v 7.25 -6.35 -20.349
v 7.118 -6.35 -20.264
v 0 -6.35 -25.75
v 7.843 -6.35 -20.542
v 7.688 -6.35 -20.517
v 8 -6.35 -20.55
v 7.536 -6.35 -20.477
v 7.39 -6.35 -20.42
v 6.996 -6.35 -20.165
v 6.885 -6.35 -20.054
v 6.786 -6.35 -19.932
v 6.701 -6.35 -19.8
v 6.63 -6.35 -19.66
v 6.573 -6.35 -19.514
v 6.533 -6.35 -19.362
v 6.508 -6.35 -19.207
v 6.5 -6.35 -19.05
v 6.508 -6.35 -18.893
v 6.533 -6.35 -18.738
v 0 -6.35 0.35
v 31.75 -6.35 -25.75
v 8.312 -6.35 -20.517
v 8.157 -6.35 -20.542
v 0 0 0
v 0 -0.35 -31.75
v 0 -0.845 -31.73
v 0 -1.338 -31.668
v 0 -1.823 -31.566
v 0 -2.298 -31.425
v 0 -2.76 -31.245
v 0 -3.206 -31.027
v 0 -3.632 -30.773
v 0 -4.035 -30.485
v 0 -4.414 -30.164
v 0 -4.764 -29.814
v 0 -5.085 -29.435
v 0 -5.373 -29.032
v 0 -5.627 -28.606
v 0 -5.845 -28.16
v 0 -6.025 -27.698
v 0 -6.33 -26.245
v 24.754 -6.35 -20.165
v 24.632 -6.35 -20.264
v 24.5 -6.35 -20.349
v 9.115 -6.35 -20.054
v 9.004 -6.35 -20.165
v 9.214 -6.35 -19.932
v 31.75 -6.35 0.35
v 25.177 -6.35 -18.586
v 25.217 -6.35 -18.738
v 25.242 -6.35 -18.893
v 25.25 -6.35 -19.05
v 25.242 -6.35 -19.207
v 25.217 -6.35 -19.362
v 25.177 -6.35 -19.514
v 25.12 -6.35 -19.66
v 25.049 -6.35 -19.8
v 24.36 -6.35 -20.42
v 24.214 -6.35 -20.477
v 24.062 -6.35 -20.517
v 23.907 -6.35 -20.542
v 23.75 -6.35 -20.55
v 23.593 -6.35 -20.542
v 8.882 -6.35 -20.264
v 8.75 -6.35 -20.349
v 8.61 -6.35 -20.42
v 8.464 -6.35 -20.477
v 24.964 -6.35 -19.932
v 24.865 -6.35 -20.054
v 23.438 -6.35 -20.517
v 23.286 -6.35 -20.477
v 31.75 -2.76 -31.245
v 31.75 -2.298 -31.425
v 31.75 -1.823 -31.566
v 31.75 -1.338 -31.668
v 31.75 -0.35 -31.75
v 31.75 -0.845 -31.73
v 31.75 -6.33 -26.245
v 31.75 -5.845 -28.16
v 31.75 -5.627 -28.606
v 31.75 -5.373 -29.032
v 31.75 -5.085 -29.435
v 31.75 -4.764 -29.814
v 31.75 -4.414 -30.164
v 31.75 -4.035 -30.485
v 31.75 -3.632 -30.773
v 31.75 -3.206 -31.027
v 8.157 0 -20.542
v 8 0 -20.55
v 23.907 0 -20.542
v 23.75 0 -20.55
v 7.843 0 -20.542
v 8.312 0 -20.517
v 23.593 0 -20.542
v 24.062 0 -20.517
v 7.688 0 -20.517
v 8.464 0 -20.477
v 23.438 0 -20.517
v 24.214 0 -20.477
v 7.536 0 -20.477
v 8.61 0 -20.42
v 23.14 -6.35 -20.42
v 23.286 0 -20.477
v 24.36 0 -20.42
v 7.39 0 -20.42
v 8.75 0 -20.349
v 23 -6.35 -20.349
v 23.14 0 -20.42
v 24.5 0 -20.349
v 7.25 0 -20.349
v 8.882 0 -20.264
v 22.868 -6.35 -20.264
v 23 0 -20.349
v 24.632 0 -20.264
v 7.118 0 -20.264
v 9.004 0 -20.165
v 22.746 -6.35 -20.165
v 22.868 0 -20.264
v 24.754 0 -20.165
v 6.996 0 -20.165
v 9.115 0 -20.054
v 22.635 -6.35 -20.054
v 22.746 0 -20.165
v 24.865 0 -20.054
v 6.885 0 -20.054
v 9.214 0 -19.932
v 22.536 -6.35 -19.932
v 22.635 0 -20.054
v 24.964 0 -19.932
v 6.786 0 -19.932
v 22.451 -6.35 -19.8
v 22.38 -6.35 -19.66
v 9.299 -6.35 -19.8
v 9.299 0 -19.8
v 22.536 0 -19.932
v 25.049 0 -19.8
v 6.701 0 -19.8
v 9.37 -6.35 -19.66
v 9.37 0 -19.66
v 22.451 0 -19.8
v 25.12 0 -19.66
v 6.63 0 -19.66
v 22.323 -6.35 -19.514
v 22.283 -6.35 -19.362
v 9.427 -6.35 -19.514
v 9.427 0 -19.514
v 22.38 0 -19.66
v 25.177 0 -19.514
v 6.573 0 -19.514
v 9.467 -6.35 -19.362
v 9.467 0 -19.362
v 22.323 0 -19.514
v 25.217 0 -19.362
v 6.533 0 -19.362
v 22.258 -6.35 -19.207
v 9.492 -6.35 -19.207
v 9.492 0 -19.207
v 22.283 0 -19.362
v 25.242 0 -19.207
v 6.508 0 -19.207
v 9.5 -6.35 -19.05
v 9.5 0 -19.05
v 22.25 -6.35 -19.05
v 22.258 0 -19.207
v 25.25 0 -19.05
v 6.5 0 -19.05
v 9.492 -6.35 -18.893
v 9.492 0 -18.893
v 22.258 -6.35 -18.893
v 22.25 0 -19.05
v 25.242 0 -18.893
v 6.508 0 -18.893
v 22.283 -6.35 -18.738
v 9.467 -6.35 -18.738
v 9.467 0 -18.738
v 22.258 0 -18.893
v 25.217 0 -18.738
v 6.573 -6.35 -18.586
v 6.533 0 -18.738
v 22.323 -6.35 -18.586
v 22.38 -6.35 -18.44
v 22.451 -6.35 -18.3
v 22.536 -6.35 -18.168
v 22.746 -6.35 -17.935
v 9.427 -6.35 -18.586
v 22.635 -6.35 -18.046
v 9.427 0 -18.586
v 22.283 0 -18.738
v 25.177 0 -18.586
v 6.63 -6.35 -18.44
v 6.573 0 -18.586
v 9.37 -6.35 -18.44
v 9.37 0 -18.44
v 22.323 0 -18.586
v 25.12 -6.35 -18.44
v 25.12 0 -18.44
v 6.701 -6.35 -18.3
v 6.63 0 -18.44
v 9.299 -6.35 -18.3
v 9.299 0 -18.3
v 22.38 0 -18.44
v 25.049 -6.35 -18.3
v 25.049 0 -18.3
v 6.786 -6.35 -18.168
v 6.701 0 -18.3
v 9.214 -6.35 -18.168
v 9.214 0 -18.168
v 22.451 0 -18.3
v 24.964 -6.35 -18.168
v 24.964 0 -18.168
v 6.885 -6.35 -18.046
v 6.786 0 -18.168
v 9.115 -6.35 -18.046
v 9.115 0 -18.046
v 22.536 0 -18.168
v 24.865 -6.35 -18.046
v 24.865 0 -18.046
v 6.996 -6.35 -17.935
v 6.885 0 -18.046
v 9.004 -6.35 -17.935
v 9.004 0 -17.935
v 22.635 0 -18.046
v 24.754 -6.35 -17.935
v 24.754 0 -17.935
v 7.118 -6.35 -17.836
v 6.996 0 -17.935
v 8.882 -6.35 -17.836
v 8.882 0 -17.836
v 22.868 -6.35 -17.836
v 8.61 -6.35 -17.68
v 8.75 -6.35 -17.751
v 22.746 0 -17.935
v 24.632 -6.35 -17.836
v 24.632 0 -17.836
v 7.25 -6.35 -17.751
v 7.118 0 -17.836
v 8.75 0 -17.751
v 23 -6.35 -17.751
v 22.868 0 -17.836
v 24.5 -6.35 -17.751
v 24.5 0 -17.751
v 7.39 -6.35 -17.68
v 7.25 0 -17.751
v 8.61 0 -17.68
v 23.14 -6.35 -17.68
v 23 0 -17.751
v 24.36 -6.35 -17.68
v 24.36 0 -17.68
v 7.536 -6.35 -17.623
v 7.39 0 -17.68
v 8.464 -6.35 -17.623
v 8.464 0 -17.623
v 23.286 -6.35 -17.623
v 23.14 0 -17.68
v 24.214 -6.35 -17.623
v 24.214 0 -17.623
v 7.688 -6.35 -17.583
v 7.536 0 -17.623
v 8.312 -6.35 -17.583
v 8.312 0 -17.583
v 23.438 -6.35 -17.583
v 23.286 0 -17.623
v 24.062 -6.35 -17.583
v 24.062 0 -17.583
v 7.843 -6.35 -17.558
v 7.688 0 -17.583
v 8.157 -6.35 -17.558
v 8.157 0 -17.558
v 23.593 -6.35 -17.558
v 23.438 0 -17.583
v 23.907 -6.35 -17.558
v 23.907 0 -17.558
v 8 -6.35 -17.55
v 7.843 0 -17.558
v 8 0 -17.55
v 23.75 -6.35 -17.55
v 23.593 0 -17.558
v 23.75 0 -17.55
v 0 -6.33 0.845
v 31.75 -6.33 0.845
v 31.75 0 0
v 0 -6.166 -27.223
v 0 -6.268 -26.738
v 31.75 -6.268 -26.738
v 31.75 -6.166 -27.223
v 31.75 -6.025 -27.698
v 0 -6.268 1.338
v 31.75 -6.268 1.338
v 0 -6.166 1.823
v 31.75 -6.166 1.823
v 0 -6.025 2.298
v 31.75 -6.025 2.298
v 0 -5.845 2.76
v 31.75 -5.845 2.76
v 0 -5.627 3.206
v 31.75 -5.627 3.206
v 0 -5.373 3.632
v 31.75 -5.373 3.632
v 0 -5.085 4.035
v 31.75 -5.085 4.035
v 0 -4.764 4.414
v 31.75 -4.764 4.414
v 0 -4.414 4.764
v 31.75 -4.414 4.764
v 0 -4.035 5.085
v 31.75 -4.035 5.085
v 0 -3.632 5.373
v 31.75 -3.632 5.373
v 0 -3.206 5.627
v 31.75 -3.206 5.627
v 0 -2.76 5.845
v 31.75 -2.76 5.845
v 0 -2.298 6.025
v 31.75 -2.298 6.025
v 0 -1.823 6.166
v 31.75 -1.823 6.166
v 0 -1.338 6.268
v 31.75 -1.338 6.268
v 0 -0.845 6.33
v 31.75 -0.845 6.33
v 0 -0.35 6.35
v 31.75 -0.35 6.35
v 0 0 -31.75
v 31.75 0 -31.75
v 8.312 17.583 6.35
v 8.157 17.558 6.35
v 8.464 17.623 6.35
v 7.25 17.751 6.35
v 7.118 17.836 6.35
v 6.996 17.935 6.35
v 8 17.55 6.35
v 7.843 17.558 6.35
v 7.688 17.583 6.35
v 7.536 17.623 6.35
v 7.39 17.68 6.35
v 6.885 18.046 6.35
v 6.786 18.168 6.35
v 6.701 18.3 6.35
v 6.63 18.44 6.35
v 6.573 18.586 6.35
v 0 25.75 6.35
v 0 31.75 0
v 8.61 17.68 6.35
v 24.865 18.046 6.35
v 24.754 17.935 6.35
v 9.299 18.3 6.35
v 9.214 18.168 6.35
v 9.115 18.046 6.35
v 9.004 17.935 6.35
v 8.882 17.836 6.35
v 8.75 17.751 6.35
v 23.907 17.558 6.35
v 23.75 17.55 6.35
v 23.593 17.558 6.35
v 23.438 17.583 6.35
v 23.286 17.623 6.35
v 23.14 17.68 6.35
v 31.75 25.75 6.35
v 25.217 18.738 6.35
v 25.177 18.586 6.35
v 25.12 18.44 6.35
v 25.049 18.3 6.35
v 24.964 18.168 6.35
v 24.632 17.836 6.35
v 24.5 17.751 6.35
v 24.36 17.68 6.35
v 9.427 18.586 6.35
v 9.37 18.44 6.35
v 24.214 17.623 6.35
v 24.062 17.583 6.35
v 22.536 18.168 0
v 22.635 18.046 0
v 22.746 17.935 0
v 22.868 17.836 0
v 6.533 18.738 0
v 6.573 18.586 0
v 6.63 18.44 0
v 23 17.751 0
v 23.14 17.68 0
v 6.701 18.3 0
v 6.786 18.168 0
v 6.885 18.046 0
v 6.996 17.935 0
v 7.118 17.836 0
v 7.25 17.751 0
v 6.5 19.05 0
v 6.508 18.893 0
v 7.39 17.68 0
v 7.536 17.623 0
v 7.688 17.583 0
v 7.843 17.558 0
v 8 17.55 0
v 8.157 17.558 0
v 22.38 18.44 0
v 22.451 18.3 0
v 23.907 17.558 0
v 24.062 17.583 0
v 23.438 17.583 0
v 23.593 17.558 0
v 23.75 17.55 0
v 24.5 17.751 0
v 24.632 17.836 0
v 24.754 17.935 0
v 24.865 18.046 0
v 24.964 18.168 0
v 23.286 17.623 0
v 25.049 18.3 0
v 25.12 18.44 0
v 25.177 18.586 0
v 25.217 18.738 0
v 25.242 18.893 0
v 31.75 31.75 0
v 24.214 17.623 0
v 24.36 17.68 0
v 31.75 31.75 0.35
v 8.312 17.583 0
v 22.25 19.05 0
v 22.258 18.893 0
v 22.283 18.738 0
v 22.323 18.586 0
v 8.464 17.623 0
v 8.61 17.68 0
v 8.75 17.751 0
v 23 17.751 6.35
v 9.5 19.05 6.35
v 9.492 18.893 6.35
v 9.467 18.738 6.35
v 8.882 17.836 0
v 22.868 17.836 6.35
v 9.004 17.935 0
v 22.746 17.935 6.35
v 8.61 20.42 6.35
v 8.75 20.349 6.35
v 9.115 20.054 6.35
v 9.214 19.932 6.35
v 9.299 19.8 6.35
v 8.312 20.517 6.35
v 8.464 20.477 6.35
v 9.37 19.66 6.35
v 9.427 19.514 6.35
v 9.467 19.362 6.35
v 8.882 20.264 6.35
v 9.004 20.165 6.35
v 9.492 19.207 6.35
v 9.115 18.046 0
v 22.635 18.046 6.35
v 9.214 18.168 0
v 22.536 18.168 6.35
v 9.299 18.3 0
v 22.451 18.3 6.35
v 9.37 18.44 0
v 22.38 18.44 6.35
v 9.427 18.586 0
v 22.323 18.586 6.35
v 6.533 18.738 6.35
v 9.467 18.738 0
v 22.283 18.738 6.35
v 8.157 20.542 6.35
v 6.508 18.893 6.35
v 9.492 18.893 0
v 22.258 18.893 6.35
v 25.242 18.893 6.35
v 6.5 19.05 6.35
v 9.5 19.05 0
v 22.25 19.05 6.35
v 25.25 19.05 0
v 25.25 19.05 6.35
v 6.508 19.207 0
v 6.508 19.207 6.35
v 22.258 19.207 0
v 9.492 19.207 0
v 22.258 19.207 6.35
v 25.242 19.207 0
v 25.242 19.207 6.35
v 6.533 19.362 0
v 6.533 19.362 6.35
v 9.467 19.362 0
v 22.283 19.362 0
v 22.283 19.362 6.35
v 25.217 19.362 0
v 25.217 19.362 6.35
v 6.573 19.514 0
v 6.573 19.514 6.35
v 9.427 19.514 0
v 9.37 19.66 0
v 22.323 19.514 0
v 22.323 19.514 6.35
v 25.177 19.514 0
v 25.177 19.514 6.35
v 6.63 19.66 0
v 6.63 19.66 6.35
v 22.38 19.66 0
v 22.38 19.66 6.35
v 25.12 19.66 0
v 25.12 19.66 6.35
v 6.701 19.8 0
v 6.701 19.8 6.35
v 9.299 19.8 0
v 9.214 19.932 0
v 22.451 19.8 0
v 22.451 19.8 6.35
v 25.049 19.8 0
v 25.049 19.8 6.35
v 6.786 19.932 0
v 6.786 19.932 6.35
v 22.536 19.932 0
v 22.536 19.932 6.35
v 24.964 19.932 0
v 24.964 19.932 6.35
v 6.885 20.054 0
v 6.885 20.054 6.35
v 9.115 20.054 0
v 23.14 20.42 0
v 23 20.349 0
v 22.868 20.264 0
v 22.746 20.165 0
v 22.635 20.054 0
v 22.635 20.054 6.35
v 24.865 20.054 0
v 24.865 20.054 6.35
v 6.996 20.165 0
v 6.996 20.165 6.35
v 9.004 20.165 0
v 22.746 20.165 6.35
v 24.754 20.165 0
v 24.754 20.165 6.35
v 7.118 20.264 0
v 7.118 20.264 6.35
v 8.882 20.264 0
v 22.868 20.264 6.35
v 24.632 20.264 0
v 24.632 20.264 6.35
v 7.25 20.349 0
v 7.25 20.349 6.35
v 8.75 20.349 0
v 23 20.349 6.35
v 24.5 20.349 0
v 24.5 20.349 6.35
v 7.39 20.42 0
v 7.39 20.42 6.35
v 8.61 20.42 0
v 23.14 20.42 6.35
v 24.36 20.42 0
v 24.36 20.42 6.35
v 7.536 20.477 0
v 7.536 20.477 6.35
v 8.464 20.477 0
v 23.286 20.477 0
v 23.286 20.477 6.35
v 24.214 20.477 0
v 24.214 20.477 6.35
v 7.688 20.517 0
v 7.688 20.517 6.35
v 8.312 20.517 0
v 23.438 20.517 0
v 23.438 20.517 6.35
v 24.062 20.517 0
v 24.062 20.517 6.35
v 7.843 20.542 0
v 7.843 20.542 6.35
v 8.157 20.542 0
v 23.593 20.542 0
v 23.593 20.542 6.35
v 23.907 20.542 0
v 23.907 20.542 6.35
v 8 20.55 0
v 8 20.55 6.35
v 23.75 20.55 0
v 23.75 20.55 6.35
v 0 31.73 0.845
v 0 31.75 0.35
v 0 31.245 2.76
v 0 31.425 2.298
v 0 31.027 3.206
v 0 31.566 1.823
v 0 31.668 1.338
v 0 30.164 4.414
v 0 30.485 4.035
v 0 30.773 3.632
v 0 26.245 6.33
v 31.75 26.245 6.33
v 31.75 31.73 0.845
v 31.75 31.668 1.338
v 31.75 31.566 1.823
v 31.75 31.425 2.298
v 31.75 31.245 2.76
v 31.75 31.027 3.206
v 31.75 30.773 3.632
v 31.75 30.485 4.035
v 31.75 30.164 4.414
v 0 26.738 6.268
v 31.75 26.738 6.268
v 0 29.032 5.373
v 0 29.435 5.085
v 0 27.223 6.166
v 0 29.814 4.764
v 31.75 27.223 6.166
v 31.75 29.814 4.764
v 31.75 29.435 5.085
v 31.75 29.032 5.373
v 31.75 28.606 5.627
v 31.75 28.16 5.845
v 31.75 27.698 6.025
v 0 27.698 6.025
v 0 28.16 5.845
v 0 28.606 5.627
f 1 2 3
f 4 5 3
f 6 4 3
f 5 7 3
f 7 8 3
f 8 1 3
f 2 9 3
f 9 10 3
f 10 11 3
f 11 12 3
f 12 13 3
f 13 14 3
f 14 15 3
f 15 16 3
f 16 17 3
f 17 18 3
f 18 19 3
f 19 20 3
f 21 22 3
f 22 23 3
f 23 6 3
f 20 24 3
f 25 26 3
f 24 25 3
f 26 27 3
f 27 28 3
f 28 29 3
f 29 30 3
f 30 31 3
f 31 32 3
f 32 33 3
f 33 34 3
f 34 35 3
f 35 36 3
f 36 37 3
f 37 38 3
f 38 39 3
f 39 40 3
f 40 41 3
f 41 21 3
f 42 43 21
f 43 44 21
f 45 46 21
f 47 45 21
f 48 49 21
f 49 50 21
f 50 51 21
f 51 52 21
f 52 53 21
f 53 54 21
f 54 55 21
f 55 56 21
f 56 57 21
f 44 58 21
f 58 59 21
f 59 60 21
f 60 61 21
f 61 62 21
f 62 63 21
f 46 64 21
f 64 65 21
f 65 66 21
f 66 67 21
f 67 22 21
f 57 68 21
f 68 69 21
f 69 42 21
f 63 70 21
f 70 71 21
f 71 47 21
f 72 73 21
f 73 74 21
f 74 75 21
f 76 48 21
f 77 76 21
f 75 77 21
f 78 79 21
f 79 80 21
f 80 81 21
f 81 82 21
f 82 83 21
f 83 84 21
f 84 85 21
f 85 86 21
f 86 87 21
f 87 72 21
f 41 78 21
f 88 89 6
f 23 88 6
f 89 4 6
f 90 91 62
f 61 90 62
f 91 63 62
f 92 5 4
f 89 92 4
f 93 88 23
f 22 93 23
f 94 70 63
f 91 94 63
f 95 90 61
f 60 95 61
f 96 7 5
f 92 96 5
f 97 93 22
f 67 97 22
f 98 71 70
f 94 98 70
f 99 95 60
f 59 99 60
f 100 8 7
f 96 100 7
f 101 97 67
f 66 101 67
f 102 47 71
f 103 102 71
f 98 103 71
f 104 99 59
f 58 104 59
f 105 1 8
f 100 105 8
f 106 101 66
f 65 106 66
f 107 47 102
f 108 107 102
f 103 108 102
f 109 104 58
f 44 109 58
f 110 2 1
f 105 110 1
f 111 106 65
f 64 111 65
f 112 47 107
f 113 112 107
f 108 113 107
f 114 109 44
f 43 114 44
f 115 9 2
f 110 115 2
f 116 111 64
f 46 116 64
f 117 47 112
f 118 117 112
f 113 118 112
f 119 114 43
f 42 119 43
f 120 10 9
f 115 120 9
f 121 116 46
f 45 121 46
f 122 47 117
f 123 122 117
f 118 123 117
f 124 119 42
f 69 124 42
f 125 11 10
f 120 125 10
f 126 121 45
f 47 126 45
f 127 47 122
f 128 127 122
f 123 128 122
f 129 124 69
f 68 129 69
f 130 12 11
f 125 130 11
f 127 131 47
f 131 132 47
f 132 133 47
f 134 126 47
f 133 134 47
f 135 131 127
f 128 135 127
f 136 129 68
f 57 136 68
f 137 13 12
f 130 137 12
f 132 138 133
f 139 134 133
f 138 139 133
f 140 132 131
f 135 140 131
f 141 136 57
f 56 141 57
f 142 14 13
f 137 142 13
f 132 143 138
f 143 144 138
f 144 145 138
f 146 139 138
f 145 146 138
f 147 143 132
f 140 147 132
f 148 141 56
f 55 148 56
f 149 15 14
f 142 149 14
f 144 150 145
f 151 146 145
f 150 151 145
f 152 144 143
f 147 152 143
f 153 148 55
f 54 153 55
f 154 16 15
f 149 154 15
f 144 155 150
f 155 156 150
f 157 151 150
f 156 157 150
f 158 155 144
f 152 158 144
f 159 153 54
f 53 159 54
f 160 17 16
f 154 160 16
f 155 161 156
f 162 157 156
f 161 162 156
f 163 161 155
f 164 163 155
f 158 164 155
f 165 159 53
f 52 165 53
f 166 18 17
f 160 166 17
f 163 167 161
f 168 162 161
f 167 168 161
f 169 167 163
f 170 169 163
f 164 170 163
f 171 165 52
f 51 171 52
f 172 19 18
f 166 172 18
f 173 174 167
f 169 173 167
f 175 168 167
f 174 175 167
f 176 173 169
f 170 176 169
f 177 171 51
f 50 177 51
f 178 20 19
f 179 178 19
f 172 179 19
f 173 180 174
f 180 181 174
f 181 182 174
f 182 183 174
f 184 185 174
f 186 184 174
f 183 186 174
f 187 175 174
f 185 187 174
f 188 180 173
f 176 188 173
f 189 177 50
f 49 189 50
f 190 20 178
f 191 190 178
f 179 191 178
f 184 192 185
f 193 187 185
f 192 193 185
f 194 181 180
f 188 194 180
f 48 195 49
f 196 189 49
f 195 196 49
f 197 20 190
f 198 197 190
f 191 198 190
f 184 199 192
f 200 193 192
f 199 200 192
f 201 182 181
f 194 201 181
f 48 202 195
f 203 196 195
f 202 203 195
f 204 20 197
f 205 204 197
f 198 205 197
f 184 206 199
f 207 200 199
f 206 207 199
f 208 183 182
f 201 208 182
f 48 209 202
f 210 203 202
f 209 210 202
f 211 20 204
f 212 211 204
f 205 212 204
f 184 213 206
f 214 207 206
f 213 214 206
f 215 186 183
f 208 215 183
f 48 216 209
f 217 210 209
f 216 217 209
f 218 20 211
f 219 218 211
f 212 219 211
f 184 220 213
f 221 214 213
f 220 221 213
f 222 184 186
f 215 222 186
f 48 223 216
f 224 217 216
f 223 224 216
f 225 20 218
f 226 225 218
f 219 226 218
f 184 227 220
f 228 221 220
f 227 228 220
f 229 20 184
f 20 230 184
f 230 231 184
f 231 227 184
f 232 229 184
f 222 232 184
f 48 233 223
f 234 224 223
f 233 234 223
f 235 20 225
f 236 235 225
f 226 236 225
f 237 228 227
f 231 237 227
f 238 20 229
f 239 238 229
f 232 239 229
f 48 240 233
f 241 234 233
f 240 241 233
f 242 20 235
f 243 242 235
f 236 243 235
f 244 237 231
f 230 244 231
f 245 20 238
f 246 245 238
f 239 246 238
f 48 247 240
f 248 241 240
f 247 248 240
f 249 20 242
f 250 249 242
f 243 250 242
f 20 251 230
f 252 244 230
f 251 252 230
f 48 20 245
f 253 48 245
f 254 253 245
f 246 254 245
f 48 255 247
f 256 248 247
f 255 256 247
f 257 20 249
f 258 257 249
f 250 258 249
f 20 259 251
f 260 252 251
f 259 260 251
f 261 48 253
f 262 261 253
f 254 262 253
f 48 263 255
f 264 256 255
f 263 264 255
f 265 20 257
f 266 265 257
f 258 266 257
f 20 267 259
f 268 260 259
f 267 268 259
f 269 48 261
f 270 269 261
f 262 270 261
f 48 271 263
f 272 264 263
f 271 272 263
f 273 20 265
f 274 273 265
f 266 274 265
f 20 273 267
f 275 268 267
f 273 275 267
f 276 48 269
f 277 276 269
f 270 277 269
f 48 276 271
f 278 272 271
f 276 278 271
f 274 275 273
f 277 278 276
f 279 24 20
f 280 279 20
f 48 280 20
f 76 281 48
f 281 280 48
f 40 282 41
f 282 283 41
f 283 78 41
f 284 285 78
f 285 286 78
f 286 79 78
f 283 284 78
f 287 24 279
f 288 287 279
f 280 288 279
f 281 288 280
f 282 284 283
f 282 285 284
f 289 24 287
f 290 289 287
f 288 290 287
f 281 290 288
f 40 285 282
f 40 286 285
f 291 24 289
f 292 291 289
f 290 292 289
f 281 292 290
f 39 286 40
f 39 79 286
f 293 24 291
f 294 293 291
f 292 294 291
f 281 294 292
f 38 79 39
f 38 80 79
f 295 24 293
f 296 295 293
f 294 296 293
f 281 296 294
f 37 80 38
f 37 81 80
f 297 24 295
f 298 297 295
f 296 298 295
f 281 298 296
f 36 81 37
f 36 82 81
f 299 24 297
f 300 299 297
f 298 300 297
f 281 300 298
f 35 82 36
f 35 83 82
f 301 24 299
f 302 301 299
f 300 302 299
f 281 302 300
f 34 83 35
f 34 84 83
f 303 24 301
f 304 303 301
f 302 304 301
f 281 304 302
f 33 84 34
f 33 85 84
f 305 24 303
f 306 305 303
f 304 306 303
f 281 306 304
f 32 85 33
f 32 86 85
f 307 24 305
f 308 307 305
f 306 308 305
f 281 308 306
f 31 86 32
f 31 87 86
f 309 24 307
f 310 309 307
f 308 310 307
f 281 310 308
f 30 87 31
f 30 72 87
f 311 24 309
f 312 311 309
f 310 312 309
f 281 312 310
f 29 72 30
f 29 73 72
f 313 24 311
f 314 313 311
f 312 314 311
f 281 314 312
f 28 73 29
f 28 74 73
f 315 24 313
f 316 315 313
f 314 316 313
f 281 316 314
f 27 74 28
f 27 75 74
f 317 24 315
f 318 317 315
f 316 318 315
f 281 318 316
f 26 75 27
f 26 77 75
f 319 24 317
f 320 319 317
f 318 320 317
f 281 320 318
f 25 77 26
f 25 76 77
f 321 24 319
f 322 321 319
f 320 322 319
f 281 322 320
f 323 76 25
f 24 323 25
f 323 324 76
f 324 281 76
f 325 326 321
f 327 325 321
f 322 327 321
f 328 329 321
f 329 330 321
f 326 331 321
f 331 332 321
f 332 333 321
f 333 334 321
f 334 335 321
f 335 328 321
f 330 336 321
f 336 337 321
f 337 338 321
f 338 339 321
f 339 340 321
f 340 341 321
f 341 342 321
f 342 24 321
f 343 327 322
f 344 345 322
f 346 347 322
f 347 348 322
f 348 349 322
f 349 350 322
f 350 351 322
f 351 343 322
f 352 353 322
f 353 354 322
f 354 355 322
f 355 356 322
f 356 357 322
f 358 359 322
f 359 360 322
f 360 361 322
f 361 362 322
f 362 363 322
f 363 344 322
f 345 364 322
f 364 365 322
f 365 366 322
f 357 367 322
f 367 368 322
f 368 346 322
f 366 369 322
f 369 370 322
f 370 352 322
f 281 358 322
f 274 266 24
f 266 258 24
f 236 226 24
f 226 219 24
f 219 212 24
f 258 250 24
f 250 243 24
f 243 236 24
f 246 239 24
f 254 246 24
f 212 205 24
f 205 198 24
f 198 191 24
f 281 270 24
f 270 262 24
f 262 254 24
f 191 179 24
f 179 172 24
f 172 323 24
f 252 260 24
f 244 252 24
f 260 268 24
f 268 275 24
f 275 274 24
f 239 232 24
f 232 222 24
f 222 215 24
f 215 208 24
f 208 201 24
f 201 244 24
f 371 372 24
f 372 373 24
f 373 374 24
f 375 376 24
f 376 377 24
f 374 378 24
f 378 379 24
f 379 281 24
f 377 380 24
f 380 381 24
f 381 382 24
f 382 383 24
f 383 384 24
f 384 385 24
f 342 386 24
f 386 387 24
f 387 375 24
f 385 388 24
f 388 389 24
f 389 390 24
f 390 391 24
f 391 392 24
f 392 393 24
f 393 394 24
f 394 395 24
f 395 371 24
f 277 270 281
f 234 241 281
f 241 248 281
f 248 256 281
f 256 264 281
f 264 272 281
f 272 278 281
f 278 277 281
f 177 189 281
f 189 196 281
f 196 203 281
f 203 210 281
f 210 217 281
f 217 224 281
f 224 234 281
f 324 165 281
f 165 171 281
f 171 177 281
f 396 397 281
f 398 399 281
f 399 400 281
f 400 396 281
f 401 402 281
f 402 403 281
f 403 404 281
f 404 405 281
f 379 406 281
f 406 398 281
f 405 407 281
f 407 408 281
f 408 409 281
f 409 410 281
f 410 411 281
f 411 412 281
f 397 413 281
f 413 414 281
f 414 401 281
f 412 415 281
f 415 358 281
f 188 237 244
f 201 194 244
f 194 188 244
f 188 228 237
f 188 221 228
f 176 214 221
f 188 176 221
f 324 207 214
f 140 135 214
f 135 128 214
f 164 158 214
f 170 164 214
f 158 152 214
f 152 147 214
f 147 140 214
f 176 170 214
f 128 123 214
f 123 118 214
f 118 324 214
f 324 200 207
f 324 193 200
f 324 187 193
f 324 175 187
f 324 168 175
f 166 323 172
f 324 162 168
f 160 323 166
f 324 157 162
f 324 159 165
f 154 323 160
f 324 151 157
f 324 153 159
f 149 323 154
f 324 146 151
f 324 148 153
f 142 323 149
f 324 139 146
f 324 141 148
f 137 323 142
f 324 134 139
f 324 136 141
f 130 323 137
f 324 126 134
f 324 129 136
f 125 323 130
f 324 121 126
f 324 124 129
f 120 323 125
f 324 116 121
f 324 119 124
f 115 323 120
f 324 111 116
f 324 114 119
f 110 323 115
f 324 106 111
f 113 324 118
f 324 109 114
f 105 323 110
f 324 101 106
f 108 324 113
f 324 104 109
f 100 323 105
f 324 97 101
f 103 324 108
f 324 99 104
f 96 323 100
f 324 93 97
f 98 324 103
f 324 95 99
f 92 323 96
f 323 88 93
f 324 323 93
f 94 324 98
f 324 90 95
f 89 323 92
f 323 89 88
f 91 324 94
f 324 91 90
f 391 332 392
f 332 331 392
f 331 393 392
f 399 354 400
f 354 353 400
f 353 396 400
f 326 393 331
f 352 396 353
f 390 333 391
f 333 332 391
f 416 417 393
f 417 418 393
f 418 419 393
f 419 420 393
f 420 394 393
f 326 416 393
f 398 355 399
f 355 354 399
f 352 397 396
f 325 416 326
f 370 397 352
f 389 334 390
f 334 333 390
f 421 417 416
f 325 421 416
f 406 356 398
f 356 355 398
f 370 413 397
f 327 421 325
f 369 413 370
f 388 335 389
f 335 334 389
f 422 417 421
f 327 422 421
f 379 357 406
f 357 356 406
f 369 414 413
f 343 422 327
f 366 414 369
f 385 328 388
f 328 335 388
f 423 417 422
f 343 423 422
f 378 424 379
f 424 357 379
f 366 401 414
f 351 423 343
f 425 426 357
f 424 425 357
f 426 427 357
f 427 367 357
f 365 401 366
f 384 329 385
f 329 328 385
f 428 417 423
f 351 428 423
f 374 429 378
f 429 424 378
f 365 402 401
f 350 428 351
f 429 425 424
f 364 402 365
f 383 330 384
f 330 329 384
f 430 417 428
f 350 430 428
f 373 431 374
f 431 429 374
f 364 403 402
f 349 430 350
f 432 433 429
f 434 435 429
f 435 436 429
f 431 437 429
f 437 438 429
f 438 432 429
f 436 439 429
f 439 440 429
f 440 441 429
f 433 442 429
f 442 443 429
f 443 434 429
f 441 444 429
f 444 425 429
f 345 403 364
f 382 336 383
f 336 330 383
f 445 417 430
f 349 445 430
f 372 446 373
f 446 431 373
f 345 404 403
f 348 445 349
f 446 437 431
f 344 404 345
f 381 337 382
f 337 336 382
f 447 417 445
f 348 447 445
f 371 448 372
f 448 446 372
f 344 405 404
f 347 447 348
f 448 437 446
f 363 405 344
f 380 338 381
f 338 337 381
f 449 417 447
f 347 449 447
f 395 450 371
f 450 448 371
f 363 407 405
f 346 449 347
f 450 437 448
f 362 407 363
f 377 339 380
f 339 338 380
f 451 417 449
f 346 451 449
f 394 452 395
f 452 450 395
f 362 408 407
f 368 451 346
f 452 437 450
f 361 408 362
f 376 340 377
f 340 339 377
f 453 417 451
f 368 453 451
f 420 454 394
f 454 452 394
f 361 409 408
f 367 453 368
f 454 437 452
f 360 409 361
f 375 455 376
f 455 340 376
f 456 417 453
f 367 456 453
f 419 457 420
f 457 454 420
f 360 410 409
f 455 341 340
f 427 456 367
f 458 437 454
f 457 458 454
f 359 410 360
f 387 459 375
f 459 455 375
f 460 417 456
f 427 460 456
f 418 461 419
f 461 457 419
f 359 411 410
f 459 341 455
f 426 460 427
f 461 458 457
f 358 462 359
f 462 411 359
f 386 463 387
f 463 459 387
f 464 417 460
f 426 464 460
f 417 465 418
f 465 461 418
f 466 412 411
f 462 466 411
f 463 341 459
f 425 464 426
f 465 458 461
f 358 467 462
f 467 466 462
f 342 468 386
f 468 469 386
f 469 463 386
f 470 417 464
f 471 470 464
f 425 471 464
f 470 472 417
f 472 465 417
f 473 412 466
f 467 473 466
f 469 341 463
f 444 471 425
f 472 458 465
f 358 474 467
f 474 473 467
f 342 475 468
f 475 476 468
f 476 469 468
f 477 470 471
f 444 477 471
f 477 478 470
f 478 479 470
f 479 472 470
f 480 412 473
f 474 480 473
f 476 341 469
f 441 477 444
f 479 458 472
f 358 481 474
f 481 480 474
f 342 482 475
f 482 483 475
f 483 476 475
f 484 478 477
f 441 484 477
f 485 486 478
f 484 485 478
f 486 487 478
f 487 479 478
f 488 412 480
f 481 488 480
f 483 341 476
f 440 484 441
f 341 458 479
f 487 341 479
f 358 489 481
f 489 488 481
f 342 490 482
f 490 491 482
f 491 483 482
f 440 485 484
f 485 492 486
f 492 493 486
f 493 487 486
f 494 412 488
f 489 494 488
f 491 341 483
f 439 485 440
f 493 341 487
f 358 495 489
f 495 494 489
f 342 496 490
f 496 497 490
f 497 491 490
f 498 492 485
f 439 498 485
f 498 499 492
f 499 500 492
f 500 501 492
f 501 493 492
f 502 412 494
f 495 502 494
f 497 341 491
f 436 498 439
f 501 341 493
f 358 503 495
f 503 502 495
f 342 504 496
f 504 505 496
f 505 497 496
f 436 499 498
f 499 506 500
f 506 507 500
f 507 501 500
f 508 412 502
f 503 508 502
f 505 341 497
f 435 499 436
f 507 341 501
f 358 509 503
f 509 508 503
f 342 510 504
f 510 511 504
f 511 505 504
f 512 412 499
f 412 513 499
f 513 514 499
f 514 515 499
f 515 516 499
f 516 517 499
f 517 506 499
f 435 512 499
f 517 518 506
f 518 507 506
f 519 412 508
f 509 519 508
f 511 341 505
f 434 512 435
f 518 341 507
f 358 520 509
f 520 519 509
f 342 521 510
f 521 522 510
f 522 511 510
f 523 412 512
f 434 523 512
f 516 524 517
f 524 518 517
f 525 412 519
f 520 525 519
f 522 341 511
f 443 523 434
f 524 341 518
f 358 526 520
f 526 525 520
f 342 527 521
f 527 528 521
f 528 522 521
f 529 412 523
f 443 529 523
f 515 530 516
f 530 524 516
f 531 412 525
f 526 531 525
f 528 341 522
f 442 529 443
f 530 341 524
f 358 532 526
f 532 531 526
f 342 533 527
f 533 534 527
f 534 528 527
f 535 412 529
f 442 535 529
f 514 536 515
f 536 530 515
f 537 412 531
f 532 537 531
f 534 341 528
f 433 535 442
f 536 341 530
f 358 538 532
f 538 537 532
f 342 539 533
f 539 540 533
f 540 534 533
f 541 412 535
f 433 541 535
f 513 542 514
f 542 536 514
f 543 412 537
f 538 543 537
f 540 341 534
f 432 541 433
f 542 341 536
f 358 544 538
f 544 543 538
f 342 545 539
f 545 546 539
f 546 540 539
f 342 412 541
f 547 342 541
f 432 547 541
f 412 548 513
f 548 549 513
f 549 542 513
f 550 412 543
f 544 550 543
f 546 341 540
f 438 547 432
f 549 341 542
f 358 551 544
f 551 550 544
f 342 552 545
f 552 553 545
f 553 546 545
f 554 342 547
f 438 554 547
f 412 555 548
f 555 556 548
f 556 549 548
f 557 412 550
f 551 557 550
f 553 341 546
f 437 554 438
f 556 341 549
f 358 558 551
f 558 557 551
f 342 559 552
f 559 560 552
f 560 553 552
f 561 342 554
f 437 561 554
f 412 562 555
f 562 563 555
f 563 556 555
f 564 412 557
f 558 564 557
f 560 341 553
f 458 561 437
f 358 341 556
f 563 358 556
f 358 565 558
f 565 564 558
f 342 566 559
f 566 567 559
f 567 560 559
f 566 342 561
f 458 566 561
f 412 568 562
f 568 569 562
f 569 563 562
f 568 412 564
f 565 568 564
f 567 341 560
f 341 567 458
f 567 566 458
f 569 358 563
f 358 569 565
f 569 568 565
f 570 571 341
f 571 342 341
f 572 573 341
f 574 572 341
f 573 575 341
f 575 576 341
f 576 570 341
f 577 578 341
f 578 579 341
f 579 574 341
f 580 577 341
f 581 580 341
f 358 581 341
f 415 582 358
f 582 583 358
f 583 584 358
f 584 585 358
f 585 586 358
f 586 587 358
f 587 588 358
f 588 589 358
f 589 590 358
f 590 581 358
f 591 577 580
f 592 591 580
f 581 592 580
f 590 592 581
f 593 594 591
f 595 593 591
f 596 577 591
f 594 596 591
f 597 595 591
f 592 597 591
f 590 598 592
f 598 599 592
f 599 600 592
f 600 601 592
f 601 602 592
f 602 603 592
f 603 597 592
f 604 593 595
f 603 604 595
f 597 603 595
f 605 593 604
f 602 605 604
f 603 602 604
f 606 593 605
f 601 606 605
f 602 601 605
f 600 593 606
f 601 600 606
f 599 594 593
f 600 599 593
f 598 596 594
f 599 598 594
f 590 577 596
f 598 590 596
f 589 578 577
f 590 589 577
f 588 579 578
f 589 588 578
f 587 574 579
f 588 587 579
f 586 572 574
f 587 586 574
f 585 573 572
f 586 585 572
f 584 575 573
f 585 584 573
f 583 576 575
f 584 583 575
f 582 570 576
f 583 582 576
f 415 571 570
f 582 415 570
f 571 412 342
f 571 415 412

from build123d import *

# Parameters (mm, degrees)
BOSS_EXTRUDE1_DEPTH = 31.75
FILLET1_R           = 6
SKETCH2_R           = 1.5
CUT_EXTRUDE1_DEPTH  = 39.1
SKETCH3_R           = 1.5
CUT_EXTRUDE2_DEPTH  = 39.1
FILLET2_R           = 6


with BuildPart() as part:
    # Sketch1 → Boss-Extrude1 (new body)
    with BuildSketch(Plane(origin=(0, 0, 0), x_dir=(0, 0, -1), z_dir=(1, 0, 0))):
        Polygon((-6.35, 31.75), (-6.35, -6.35), (31.75, -6.35), (31.75, 0), (0, 0), (0, 31.75), align=None)
    extrude(amount=BOSS_EXTRUDE1_DEPTH)

    # Fillet1
    fillet1_edges = [part.edges().sort_by_distance(p)[0] for p in [
        (15.875, -6.35, -31.75),
        (15.875, 31.75, 6.35),
    ]]
    fillet(fillet1_edges, radius=FILLET1_R)

    # Sketch2 → Cut-Extrude1 (cut, through all)
    with BuildSketch(Plane.XY.offset(6.35)):
        with Locations((8, 19.05)):
            Circle(SKETCH2_R)
        with Locations((23.75, 19.05)):
            Circle(SKETCH2_R)
    extrude(amount=-CUT_EXTRUDE1_DEPTH, mode=Mode.SUBTRACT)

    # Sketch3 → Cut-Extrude2 (cut, through all)
    with BuildSketch(Plane.XZ.offset(6.35)):
        with Locations((8, -19.05)):
            Circle(SKETCH3_R)
        with Locations((23.75, -19.05)):
            Circle(SKETCH3_R)
    extrude(amount=-CUT_EXTRUDE2_DEPTH, mode=Mode.SUBTRACT)

    # Fillet2
    fillet2_edges = [part.edges().sort_by_distance(p)[0] for p in [
        (15.875, -6.35, 6.35),
    ]]
    fillet(fillet2_edges, radius=FILLET2_R)


solid = part.part
